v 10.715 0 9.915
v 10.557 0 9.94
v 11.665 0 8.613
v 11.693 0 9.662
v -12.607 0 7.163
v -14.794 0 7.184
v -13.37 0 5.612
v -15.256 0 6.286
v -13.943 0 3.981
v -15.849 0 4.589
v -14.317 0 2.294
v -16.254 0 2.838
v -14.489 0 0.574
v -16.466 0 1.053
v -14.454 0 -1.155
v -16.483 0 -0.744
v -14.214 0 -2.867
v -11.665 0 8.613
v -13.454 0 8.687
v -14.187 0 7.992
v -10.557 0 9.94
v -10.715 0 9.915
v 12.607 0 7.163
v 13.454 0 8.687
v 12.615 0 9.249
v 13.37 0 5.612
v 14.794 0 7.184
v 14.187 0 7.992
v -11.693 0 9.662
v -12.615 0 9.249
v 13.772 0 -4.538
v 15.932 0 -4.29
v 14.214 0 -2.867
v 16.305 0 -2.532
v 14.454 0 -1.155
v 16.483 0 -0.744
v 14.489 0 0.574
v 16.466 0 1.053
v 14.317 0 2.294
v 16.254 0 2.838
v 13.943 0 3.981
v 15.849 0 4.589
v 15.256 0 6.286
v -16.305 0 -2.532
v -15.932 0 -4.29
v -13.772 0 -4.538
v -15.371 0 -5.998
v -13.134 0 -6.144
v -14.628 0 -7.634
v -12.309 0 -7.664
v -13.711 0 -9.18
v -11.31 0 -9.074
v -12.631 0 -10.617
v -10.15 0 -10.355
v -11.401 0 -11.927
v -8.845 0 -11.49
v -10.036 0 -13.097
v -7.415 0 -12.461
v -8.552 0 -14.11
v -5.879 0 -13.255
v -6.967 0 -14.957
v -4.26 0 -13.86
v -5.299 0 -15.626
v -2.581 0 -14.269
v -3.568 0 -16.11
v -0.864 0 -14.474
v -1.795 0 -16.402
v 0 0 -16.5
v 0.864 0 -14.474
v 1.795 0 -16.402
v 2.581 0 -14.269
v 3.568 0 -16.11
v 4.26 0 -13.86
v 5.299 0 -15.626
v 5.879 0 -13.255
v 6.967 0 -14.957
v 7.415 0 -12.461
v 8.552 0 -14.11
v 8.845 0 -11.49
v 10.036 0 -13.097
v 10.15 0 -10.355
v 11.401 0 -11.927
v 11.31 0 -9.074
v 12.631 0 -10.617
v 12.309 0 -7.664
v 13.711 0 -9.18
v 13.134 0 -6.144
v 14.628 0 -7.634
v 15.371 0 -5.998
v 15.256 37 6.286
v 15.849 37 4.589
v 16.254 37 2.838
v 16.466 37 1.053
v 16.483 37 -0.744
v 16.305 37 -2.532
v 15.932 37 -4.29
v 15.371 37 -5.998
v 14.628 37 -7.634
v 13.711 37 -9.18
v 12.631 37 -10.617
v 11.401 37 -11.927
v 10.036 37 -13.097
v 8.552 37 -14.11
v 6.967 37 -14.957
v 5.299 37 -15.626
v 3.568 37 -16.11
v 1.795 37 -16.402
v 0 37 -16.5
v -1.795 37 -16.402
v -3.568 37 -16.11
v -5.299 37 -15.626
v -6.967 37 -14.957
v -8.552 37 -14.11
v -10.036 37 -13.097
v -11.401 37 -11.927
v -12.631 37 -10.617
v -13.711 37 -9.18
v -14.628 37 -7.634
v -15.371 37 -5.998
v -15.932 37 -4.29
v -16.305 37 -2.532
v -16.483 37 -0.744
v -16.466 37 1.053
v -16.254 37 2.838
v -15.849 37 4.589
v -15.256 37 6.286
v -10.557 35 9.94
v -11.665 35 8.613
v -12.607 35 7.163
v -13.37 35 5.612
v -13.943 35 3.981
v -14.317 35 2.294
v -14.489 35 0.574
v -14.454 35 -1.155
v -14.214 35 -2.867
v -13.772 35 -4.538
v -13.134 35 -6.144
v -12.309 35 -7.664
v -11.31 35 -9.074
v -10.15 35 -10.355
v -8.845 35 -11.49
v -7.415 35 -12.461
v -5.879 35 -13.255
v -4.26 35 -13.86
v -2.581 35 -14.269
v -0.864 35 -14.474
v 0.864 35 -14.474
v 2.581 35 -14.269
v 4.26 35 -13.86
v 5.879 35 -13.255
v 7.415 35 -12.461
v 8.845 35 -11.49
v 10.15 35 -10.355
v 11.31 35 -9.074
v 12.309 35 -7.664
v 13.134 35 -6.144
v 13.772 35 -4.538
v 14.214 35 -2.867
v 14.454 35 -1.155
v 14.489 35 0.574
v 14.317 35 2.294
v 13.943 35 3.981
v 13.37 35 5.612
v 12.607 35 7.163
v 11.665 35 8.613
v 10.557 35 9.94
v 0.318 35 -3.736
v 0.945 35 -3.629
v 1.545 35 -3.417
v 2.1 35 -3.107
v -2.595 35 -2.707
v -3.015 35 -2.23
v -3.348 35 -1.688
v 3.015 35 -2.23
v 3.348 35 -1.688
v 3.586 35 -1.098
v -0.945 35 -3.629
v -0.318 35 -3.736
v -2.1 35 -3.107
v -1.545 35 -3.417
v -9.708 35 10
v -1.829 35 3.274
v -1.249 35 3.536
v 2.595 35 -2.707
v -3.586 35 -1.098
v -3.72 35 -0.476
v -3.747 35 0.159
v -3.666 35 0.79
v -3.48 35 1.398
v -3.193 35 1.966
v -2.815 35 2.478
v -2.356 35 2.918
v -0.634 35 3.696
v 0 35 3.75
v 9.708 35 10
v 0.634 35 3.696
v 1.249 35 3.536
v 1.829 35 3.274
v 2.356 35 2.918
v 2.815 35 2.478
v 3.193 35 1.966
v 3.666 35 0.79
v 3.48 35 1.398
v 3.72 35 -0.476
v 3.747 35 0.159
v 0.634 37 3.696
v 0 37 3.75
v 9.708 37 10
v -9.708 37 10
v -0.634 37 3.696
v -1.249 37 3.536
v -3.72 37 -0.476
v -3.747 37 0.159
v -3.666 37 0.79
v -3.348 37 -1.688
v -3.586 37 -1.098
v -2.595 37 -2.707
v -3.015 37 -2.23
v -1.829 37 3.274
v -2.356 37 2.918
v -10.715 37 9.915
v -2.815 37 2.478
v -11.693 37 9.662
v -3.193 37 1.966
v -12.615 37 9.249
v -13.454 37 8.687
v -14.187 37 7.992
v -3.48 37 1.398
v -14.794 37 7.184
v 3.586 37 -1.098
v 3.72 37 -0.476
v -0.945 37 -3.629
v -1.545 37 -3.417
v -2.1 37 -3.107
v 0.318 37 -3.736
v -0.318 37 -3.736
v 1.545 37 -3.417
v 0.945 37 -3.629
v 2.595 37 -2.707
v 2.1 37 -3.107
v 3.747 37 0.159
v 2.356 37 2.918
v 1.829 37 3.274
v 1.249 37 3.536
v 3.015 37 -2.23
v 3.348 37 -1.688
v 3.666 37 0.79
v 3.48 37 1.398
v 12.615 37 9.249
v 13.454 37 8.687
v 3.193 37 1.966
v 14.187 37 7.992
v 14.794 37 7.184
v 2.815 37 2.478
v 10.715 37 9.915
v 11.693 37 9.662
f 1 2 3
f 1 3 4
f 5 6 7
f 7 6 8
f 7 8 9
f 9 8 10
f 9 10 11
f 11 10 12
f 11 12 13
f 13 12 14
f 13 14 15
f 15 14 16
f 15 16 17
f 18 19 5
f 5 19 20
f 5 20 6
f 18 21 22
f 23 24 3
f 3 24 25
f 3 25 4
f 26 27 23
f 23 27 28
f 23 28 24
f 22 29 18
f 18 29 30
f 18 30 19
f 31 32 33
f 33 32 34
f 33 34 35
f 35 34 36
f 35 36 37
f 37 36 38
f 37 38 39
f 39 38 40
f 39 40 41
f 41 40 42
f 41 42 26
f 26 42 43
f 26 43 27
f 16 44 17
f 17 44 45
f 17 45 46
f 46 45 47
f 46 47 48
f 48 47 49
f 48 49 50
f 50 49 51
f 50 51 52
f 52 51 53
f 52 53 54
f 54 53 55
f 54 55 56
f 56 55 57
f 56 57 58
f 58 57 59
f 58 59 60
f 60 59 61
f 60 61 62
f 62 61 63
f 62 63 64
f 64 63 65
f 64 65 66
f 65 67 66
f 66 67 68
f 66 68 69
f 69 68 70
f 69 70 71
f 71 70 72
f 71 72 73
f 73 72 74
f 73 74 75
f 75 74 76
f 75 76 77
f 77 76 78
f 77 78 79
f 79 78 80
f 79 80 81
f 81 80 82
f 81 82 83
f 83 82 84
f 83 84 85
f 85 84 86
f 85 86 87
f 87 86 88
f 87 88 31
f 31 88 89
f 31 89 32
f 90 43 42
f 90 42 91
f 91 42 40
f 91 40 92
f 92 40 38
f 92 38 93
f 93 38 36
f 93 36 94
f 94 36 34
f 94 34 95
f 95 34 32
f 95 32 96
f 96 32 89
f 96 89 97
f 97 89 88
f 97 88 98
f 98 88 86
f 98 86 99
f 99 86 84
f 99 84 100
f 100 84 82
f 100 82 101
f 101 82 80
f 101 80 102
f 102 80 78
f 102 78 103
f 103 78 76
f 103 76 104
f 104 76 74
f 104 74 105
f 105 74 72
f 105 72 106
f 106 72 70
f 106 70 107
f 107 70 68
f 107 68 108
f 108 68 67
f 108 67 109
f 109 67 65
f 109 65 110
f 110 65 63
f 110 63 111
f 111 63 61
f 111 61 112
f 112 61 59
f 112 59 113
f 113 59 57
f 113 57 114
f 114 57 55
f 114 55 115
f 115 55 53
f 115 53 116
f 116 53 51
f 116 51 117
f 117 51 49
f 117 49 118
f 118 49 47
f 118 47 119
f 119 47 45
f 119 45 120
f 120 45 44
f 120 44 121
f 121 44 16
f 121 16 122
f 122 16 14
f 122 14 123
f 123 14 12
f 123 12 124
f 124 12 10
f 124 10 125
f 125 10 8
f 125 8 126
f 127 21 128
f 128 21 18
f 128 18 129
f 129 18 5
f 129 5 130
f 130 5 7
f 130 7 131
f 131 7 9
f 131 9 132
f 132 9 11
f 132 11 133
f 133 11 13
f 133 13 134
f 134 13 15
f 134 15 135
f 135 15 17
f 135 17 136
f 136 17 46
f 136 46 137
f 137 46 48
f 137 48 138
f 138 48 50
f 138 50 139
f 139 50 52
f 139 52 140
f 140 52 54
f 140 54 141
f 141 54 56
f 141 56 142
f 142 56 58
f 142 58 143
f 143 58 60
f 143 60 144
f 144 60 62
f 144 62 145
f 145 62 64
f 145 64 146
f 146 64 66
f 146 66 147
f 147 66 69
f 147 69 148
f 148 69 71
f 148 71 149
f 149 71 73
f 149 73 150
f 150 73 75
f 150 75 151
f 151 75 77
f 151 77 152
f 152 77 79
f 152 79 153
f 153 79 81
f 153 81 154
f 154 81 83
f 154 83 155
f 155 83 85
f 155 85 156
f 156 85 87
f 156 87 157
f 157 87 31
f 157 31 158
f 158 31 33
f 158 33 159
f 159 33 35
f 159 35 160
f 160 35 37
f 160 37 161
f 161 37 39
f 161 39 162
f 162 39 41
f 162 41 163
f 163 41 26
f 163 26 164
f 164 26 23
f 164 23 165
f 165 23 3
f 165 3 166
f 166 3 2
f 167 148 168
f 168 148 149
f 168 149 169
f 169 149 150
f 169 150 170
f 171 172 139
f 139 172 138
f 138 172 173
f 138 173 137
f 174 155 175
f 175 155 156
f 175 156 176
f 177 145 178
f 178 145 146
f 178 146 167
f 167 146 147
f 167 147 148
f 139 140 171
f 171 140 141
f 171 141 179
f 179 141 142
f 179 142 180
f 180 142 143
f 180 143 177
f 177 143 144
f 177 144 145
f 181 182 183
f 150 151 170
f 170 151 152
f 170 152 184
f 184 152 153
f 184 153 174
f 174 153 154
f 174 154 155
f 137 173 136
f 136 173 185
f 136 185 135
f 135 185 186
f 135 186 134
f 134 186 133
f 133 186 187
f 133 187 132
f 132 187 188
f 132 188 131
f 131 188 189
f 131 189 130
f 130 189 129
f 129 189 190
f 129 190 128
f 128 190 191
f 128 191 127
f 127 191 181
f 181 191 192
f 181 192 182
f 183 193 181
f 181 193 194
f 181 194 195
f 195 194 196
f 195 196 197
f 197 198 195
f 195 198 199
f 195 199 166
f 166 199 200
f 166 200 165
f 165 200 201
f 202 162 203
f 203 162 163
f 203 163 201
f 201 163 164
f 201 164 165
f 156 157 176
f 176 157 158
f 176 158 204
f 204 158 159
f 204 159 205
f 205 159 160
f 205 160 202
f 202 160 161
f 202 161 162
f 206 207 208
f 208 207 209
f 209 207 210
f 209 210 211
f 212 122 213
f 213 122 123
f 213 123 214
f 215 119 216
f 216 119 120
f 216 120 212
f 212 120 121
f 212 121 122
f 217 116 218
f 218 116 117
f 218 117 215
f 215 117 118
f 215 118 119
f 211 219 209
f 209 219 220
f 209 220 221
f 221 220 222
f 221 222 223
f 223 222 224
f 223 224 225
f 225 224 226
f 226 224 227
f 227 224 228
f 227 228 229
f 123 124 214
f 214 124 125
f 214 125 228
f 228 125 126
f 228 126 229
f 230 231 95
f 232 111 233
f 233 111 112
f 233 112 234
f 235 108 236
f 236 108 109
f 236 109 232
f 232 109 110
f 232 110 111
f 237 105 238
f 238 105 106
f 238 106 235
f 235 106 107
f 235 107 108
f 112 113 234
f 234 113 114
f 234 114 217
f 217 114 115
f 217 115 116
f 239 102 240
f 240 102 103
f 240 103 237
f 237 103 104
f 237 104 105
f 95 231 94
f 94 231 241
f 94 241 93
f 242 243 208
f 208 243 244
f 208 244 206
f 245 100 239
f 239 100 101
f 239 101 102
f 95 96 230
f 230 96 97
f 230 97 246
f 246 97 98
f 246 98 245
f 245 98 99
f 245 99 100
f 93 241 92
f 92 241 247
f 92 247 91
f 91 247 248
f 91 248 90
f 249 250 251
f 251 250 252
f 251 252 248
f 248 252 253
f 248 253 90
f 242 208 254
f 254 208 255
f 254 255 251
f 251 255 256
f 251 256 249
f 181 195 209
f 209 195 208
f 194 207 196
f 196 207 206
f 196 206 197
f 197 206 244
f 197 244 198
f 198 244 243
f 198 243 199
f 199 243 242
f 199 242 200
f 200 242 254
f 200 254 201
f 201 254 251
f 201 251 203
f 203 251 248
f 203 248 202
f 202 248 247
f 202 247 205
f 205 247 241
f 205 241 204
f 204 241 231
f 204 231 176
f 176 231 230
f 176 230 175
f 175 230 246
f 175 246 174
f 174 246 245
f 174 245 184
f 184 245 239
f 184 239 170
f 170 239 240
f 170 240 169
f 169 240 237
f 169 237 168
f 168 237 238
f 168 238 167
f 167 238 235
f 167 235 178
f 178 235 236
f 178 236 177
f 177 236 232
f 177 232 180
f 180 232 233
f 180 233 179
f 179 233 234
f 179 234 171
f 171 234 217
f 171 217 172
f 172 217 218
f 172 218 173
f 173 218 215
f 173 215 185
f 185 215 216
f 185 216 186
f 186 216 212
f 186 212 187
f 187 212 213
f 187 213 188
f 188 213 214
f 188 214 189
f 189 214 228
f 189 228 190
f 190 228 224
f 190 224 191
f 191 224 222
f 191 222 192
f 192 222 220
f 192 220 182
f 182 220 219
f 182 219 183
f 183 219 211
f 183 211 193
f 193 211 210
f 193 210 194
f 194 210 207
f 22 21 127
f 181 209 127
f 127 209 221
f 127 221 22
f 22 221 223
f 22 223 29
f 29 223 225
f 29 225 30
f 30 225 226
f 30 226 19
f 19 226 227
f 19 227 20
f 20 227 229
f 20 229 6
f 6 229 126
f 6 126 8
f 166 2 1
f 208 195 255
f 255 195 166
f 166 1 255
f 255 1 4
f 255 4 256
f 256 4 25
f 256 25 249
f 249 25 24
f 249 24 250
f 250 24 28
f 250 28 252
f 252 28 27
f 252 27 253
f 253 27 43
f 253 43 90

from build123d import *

# Parameters (mm, degrees)
SKETCH_1_R          = 16.5
SKETCH_1_R_2        = 14.5
EXTRUDE_1_DEPTH     = 35
SKETCH_3_R          = 16.5
EXTRUDE_2_DEPTH     = 2
SKETCH_4_W          = 49.747728002
SKETCH_4_H          = 43.690708299
CUT_EXTRUDE_1_DEPTH = 49.40970977
CUT_EXTRUDE_2_REACH = 45.744
SKETCH_5_R          = 3.75
FILLET_1_R          = 6


with BuildPart() as part:
    # 草图1 → 凸台-拉伸1 (new body)
    with BuildSketch(Plane(origin=(0, 0, 0), x_dir=(1, 0, 0), z_dir=(0, 1, 0))):
        with Locations(Location((0, 0, 0), (0, 0, 270))):
            Circle(SKETCH_1_R)
        with Locations(Location((0, 0, 0), (0, 0, 270))):
            Circle(SKETCH_1_R_2, mode=Mode.SUBTRACT)
    extrude(amount=EXTRUDE_1_DEPTH)

    # 草图3 → 凸台-拉伸2 (add)
    with BuildSketch(Plane(origin=(0, 35, 0), x_dir=(1, 0, 0), z_dir=(0, 1, 0))):
        with Locations(Location((0, 0, 0), (0, 0, 270))):
            Circle(SKETCH_3_R)
    extrude(amount=EXTRUDE_2_DEPTH)

    # 草图4 → 切除-拉伸1 (cut, through all)
    with BuildSketch(Plane.XY.offset(10)):
        with Locations((3.540684312, 17.876483266)):
            Rectangle(SKETCH_4_W, SKETCH_4_H)
    extrude(amount=CUT_EXTRUDE_1_DEPTH, mode=Mode.SUBTRACT)

    # 草图5 → 切除-拉伸2 (cut, up to next)
    with BuildSketch(Plane(origin=(0, 37, 0), x_dir=(1, 0, 0), z_dir=(0, 1, 0)), mode=Mode.PRIVATE) as cut_extrude_2_sk1:
        with Locations(Location((0, 0, 0), (0, 0, 270))):
            Circle(SKETCH_5_R)
    cut_extrude_2_tool1 = extrude(cut_extrude_2_sk1.sketch, amount=-CUT_EXTRUDE_2_REACH, mode=Mode.PRIVATE) & part.part
    add(cut_extrude_2_tool1.solids().sort_by_distance((0, 37, 0))[0], mode=Mode.SUBTRACT)

    # 圆角1
    fillet_1_edges = [part.edges().sort_by_distance(p)[0] for p in [
        (13.124404748, 18.5, 10),
        (-13.124404748, 18.5, 10),
    ]]
    fillet(fillet_1_edges, radius=FILLET_1_R)


solid = part.part
